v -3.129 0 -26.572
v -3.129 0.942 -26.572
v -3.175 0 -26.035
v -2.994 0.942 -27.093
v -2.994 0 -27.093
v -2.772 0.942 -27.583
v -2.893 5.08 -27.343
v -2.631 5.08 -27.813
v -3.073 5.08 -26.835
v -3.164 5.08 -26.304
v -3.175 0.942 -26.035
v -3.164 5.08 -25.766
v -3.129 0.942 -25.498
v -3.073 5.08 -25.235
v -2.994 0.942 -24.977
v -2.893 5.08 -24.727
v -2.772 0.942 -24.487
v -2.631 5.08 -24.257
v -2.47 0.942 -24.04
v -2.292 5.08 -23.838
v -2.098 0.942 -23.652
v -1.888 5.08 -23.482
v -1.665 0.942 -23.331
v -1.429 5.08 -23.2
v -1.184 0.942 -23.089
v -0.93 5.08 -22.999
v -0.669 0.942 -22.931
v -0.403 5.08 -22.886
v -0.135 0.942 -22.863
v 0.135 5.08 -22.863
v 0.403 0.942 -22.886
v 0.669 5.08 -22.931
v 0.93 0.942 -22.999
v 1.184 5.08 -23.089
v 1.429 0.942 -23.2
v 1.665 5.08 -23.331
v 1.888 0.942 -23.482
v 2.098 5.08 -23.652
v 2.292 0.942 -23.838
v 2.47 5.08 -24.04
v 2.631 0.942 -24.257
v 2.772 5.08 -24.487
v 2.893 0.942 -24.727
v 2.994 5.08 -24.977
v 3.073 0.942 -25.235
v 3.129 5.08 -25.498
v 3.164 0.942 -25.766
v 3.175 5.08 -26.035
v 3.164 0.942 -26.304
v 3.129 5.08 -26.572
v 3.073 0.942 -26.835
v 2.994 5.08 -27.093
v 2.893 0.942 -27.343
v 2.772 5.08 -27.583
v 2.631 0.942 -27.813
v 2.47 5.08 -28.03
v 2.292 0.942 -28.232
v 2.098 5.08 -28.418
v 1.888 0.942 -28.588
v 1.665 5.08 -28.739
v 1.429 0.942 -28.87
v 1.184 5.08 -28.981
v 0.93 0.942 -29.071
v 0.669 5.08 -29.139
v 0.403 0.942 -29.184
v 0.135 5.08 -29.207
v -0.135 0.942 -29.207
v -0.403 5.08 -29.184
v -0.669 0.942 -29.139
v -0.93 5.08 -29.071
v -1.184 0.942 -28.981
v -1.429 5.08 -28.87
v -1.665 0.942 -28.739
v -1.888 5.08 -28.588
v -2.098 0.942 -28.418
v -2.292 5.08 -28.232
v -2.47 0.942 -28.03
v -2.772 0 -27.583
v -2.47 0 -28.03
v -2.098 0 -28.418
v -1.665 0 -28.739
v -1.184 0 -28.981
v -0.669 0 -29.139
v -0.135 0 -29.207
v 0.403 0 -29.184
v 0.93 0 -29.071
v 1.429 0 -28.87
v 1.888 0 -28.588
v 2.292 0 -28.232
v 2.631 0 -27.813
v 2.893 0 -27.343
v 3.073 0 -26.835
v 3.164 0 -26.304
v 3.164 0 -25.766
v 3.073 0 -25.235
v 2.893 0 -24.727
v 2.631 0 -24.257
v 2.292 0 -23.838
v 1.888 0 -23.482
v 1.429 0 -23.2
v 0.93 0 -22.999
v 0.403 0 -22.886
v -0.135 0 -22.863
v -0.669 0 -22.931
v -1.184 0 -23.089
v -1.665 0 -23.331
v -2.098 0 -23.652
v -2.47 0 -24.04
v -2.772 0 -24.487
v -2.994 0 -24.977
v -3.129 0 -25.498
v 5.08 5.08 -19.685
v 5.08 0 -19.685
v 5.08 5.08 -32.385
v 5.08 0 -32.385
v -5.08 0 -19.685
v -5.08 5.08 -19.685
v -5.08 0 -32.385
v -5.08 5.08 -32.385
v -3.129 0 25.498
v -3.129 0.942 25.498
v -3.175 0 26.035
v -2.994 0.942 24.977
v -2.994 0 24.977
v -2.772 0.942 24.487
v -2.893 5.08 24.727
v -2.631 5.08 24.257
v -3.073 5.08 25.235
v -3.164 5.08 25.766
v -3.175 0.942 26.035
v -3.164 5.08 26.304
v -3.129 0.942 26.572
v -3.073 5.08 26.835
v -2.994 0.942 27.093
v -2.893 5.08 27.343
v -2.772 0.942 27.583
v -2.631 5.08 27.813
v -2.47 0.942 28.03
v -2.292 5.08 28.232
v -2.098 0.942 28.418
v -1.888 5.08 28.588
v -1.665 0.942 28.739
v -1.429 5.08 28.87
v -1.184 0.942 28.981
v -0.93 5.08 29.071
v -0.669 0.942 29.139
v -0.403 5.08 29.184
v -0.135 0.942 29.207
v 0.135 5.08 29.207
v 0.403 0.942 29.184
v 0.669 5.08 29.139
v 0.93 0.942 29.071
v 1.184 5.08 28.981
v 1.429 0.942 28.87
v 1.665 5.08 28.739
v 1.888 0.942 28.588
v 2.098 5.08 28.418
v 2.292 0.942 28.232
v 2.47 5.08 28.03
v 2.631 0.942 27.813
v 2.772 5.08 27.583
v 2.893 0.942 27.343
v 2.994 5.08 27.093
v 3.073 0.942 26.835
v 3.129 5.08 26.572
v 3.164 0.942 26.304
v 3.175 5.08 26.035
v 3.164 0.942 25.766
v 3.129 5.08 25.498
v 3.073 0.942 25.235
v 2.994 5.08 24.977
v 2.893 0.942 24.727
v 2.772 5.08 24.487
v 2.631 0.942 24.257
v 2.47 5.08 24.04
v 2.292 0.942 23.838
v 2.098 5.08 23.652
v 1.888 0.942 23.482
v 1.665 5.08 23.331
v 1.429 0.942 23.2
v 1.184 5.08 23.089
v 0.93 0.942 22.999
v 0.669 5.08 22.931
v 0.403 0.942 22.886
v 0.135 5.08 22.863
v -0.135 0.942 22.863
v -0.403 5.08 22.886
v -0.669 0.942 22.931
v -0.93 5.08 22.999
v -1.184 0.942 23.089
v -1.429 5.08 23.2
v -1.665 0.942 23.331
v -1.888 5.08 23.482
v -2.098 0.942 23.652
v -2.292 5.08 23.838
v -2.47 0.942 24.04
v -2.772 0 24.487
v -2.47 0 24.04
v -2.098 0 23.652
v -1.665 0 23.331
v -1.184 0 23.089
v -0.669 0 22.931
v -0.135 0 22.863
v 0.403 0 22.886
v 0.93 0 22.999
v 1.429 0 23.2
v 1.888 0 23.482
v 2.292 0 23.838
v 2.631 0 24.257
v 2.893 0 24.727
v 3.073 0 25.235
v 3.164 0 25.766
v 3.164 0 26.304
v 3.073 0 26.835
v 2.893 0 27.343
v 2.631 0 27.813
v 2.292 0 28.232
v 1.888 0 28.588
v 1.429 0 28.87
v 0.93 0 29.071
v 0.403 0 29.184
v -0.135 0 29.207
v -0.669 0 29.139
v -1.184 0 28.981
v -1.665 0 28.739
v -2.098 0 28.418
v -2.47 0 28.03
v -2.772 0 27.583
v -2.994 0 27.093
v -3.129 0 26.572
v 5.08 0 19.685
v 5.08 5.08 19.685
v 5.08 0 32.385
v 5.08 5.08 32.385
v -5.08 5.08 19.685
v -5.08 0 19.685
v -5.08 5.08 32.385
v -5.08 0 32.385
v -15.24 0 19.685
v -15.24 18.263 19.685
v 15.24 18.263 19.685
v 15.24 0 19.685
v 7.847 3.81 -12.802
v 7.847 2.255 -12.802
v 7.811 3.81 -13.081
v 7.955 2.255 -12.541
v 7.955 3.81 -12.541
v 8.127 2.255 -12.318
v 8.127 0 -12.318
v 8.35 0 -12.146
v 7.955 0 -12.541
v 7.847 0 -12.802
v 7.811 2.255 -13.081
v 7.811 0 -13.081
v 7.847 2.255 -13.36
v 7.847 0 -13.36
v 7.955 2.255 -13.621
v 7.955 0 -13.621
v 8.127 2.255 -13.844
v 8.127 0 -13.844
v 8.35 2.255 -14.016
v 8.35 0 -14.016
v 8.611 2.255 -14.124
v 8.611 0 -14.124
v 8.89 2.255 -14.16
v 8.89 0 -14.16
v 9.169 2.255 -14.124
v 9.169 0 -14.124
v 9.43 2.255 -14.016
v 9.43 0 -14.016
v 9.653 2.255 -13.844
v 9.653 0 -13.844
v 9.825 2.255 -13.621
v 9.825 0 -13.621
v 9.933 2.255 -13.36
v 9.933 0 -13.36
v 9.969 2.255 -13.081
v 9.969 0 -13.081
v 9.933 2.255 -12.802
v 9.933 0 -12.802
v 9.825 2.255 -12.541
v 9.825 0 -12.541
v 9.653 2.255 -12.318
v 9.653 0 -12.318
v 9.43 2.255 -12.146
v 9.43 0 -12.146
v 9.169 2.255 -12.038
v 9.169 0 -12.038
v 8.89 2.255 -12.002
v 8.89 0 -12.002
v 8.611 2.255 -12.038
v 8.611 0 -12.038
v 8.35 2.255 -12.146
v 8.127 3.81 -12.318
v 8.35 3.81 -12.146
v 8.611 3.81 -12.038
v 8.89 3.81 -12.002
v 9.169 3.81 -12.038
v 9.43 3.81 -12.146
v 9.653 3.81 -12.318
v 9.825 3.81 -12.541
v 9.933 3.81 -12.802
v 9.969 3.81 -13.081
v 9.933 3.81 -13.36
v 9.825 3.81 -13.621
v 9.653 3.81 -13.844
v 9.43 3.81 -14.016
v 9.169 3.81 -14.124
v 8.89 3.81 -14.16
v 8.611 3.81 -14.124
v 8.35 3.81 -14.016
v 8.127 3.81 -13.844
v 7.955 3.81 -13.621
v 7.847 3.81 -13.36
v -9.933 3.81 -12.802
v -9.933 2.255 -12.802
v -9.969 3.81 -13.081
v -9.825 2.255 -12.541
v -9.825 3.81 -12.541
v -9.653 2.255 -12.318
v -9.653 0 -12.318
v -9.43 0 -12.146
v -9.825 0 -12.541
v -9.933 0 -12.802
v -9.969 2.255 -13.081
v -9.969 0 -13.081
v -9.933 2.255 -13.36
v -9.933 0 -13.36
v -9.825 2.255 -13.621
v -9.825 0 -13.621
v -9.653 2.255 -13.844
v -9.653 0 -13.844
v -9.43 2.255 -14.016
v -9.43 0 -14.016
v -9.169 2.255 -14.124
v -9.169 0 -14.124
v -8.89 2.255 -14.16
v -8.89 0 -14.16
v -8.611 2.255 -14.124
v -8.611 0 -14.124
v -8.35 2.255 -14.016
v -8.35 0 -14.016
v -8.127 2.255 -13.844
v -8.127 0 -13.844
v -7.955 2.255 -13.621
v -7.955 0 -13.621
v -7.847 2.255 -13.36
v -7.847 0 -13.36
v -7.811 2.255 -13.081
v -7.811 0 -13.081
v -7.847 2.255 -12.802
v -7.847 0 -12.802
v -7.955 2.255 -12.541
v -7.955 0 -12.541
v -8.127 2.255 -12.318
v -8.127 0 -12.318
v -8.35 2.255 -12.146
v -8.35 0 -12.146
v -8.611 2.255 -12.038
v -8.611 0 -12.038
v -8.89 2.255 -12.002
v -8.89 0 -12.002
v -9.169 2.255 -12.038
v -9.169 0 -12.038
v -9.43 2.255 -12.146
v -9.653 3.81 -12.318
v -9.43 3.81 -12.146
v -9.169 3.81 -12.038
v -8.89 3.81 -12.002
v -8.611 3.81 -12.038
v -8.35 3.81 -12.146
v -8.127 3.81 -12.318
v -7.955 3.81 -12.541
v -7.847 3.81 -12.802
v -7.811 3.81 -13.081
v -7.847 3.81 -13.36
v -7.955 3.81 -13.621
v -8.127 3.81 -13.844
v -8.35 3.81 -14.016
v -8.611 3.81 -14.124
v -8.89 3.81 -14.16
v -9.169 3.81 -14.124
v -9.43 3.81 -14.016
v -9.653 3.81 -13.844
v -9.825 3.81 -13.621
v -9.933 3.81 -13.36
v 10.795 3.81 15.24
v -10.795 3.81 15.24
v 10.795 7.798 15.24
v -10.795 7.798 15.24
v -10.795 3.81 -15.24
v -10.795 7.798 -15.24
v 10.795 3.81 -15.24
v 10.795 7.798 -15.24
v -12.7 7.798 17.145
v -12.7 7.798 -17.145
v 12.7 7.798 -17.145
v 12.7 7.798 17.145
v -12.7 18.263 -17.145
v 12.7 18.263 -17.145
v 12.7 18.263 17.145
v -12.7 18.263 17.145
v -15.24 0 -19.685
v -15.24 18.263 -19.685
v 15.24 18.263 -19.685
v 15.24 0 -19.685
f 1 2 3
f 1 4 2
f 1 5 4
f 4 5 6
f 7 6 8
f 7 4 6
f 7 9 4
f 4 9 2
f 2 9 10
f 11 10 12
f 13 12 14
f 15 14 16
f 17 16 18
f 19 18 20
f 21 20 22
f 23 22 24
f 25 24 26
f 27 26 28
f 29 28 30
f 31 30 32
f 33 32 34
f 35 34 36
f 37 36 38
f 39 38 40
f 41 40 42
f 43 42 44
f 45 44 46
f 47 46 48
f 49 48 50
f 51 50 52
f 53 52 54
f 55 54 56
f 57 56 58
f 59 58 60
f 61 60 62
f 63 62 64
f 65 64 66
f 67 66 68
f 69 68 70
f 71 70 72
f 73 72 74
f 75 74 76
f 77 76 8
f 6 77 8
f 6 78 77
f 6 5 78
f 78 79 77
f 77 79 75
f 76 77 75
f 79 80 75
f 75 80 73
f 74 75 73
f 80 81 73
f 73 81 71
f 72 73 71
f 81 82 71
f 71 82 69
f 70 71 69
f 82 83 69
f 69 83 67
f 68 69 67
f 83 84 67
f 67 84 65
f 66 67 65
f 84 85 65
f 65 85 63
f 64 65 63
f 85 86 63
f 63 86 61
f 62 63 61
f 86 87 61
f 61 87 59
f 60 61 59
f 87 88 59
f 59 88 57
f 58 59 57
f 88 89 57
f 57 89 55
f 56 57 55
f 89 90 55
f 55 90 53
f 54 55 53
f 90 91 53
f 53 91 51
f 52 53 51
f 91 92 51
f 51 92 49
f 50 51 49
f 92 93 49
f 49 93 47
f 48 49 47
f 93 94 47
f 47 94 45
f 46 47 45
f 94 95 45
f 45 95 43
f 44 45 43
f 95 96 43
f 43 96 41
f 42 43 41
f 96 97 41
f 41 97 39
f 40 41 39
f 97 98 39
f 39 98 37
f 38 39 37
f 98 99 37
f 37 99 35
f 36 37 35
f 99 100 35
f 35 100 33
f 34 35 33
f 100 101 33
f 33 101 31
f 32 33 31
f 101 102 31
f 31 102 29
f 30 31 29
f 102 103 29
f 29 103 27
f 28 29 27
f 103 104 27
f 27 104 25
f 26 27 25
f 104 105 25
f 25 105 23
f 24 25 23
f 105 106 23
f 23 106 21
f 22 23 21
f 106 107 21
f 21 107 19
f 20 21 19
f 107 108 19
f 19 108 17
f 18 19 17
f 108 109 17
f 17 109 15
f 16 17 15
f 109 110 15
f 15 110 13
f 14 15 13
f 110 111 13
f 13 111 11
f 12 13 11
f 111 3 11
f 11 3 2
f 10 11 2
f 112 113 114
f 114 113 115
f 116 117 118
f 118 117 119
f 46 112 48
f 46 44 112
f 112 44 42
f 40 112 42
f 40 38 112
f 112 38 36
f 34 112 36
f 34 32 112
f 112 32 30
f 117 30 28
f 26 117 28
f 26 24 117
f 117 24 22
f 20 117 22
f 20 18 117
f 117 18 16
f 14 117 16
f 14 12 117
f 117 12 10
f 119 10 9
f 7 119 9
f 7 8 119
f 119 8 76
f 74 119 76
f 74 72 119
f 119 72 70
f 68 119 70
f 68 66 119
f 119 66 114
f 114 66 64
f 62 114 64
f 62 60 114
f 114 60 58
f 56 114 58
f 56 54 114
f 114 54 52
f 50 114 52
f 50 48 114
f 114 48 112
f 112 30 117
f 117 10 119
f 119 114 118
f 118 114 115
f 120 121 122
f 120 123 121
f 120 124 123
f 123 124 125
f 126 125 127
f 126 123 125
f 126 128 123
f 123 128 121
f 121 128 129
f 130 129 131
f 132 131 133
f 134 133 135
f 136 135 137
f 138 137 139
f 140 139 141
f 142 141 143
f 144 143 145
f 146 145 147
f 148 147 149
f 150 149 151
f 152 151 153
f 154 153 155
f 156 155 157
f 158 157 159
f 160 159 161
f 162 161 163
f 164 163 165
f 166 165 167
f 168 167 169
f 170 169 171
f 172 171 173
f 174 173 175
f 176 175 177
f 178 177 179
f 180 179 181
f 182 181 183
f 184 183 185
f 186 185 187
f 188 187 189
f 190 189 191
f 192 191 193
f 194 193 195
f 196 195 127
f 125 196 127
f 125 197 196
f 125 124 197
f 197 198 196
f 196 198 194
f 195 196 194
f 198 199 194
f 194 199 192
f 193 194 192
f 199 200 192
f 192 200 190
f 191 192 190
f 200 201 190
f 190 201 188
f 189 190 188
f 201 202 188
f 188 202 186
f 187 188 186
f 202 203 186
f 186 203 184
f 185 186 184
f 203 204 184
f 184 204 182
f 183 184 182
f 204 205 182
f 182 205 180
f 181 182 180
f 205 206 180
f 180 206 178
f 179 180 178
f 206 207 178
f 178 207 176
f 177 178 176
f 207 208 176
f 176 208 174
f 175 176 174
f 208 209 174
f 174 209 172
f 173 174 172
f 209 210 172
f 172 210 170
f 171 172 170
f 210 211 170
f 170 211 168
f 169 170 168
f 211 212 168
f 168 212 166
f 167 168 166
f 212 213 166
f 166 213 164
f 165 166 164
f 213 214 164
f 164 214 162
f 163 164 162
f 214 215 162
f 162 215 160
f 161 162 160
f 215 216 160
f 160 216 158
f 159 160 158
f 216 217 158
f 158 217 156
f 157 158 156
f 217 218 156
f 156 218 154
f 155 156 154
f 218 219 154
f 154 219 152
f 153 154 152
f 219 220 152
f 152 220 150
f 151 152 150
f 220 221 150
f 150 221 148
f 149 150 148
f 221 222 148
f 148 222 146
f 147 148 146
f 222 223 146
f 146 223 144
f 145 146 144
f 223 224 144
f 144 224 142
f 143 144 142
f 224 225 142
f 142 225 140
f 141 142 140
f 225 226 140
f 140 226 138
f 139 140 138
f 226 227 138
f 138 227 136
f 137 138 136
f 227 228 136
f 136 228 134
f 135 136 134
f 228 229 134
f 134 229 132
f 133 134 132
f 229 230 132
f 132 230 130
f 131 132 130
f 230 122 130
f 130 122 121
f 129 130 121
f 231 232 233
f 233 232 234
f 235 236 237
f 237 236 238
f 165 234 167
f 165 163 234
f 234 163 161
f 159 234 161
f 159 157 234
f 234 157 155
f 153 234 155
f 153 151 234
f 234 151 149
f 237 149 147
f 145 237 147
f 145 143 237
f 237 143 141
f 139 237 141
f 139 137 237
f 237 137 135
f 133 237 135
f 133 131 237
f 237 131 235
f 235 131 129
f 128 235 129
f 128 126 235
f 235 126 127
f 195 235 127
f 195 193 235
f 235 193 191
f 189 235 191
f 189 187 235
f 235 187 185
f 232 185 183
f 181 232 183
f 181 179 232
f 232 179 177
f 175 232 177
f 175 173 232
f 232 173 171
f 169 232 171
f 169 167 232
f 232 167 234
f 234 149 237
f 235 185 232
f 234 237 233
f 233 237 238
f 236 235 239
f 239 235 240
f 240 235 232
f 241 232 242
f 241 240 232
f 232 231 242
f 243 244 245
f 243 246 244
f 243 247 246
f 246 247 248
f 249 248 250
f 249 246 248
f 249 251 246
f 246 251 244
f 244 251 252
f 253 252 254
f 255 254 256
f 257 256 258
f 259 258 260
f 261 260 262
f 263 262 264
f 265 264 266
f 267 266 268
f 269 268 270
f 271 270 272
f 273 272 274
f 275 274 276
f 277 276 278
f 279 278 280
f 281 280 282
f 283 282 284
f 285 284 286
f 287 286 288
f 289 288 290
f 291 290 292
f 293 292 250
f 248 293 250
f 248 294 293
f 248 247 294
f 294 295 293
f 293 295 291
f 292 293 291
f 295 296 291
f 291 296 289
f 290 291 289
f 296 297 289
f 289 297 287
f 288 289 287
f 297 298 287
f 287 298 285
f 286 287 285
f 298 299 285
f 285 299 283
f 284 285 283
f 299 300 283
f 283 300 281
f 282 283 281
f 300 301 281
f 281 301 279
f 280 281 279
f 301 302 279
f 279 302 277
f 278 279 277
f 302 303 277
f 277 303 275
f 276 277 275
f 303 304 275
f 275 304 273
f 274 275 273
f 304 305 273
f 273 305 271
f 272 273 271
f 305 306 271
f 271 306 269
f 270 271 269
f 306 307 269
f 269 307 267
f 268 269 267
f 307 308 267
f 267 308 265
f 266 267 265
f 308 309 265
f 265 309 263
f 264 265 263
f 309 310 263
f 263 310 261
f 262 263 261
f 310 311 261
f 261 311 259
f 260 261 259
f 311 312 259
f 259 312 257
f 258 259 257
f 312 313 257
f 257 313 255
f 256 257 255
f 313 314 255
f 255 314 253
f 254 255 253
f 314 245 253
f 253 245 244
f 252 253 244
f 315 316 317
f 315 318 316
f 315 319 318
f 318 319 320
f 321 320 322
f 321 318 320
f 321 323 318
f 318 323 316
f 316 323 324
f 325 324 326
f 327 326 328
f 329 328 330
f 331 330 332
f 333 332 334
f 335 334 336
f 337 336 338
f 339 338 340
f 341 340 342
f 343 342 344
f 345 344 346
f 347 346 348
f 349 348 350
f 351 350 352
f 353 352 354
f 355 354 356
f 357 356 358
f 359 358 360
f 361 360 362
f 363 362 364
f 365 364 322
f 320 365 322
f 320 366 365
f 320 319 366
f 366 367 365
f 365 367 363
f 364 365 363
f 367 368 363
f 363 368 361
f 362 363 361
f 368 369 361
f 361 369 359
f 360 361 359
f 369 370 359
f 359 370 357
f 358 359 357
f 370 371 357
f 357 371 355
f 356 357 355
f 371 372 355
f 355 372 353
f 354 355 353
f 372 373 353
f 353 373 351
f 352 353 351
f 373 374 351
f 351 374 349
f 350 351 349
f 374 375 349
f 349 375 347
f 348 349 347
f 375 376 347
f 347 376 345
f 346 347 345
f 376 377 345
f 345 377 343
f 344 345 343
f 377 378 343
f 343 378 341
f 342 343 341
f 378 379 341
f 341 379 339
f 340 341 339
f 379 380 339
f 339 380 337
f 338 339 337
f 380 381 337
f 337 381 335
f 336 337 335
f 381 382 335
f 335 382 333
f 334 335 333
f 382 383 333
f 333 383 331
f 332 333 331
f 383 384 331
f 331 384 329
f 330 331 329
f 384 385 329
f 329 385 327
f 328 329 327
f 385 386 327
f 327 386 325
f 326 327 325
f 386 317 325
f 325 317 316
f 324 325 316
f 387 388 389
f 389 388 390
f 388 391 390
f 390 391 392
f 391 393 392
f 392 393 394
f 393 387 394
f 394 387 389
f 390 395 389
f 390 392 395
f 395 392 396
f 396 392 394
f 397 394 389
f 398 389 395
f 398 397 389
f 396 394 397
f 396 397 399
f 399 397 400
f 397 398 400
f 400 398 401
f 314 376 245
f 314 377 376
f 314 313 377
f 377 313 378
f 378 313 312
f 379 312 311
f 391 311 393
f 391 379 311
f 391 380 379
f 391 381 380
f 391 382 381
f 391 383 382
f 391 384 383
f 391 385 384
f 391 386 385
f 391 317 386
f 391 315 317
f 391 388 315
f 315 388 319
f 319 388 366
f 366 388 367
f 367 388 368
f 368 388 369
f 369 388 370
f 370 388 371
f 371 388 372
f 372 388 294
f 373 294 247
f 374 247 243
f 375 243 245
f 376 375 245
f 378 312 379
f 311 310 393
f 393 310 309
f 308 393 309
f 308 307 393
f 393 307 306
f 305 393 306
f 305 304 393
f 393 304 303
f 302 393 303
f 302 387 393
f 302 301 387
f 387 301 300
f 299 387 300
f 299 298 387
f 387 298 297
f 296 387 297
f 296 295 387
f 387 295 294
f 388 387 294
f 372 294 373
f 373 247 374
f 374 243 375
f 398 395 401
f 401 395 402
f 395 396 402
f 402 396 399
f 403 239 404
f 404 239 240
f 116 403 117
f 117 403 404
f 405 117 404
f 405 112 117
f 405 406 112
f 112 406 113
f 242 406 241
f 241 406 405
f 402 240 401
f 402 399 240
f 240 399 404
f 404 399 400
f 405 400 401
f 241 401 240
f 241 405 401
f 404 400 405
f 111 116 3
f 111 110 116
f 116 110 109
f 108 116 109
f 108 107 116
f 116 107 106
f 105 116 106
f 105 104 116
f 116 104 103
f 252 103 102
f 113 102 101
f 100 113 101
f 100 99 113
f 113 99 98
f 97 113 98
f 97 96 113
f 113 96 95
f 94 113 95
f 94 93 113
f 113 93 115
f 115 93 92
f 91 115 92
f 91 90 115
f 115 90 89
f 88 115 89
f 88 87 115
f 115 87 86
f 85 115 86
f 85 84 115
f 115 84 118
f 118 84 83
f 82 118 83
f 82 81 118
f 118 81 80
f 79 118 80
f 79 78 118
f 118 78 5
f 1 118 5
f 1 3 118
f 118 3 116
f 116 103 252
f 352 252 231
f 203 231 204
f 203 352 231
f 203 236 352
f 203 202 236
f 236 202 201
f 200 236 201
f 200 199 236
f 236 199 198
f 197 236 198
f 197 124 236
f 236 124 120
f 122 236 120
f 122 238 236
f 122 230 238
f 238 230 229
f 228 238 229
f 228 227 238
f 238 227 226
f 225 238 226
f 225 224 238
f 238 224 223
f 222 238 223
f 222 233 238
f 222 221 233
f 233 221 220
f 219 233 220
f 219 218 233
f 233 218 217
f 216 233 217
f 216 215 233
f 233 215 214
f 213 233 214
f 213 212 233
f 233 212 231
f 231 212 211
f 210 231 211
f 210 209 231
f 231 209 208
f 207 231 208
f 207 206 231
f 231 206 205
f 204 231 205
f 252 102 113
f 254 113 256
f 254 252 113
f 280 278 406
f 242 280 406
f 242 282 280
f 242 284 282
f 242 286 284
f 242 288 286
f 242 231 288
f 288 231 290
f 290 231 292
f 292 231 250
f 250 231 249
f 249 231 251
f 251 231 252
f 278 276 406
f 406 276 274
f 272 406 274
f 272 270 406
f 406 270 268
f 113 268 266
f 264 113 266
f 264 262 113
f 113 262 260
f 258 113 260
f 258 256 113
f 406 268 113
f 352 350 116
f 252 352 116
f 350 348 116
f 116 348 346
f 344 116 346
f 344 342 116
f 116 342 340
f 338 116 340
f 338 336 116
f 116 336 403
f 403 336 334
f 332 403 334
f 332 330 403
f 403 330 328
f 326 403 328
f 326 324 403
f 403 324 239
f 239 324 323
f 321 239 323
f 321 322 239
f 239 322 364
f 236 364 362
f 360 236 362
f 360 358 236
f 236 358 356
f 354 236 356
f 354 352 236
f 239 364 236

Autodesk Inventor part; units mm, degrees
ref_plane "XZ Plane" through (0, 0, 0) normal (0, 1, 0) x (-1, 0, 0)
sketch "Sketch3" plane through (0, 0, 0) normal (0, 1, 0) x (-1, 0, 0)
  line L0 (15.24, 19.685) -> (-15.24, 19.685)
  line L1 (-15.24, 19.685) -> (-15.24, -19.685)
  line L2 (-15.24, -19.685) -> (15.24, -19.685)
  line L3 (15.24, -19.685) -> (15.24, 19.685)
  line L4 (15.24, 19.685) -> (-15.24, -19.685) construction
  line L5 (-15.24, 19.685) -> (15.24, -19.685) construction
  line L6 (-12.7, 17.145) -> (-12.7, -17.145)
  line L7 (-12.7, -17.145) -> (12.7, -17.145)
  line L8 (12.7, -17.145) -> (12.7, 17.145)
  line L9 (12.7, 17.145) -> (-12.7, 17.145)
  line L10 (-12.7, 17.145) -> (12.7, -17.145) construction
  line L11 (-12.7, -17.145) -> (12.7, 17.145) construction
  point P0 (0, 0)
  dimension "d11" = 30.48
  dimension "d12" = 39.37
  dimension "d13" = 34.29
  dimension "d14" = 25.4
extrude "Extrusion4" add sketch "Sketch3" along normal blind 18.2626
sketch "Sketch4" plane through (0, 0, 0) normal (0, -1, 0) x (1, 0, 0)
  line L0 (12.7, 17.145) -> (-12.7, 17.145) projected
  line L1 (-12.7, -17.145) -> (12.7, -17.145) projected
  line L2 (12.7, 17.145) -> (-12.7, 17.145)
  line L3 (-12.7, 17.145) -> (-12.7, -17.145)
  line L4 (-12.7, -17.145) -> (12.7, -17.145)
  line L5 (12.7, -17.145) -> (12.7, 17.145)
  point P0 (0, 0)
extrude "Extrusion5" add sketch "Sketch4" against normal blind 3.81
sketch "Sketch5" plane through (0, 3.81, 0) normal (0, 1, 0) x (1, 0, 0)
  line L0 (10.795, -15.24) -> (10.795, 15.24)
  line L1 (10.795, 15.24) -> (-10.795, 15.24)
  line L2 (-10.795, 15.24) -> (-10.795, -15.24)
  line L3 (-10.795, -15.24) -> (10.795, -15.24)
  line L4 (10.795, -15.24) -> (-10.795, 15.24) construction
  line L5 (10.795, 15.24) -> (-10.795, -15.24) construction
  line L6 (12.7, -17.145) -> (-12.7, -17.145) projected
  line L7 (12.7, 17.145) -> (12.7, -17.145) projected
  line L8 (-12.7, 17.145) -> (12.7, 17.145) projected
  line L9 (12.7, -17.145) -> (-12.7, -17.145)
  line L10 (-12.7, -17.145) -> (-12.7, 17.145)
  line L11 (-12.7, 17.145) -> (12.7, 17.145)
  line L12 (12.7, 17.145) -> (12.7, -17.145)
  point P0 (0, 0)
  dimension "d21" = 1.905
  dimension "d22" = 1.905
extrude "Extrusion6" add sketch "Sketch5" along normal blind 3.9878
sketch "Sketch6" plane through (0, 0, 0) normal (0, -1, 0) x (1, 0, 0)
  line L0 (15.24, 19.685) -> (15.24, -19.685) construction
  line L1 (15.24, -13.081) -> (-15.24, -13.081) construction
  line L2 (-15.24, -19.685) -> (-15.24, 19.685) construction
  line L3 (15.24, -19.685) -> (-15.24, -19.685) construction
  point P0 (0, 0)
  point P1 (8.89, -13.081)
  point P2 (-8.89, -13.081)
  dimension "d25" = 6.604
  dimension "d26" = 6.35
  dimension "d27" = 6.35
hole "Hole1" at (8.89, 0, -13.081) at (-8.89, 0, -13.081) direction (0, 1, 0) diameter 2.159 end through all
sketch "Sketch8" plane through (-15.24, 0, 19.685) normal (0, 0, 1) x (1, 0, 0)
  line L0 (15.24, 0) -> (20.32, 0)
  line L1 (20.32, 0) -> (20.32, 5.08)
  line L2 (20.32, 5.08) -> (15.24, 5.08)
  line L3 (15.24, 5.08) -> (15.24, 0)
  line L4 (15.24, 0) -> (10.16, 0)
  line L5 (10.16, 0) -> (10.16, 5.08)
  line L6 (10.16, 5.08) -> (15.24, 5.08)
  dimension "d35" = 5.08
  dimension "d36" = 5.08
extrude "Extrusion7" add sketch "Sketch8" along normal blind 12.7
sketch "Sketch10" plane through (-5.08, 5.08, 19.685) normal (0, 1, 0) x (1, 0, 0)
  line L0 (-10.16, 0) -> (20.32, 0) projected
  line L1 (0, 0) -> (0, -12.7) projected
  point P0 (5.08, 19.685)
  point P1 (5.08, -6.35)
  dimension "d46" = 6.35
  dimension "d54" = 5.08
hole "Hole3" at (0, 5.08, 26.035) direction (0, -1, 0) diameter 6.35 end through all
mirror "Mirror1" about plane through (0, 0, 0) normal (0, 0, 1) of "Hole3", "Extrusion7"
equation "\"d11\" = caseWidth"
equation "\"d12\" = caseLength"
equation "\"d13\" = internalCaseLength"
equation "\"d14\" = internalCaseWidth"
equation "\"d17\" = caseHeight"
equation "\"d19\" = caseBaseThickness"
equation "\"d21\" = supportWidth"
equation "\"d22\" = supportWidth"
equation "\"d23\" = componentHeightAboveBoard"
equation "\"d35\" = tabHeight"
equation "\"d36\" = halfTabWidth"
equation "\"d37\" = tabLength"
equation "\"d46\" = halfTabLength"
equation "\"d54\" = halfTabWidth"
equation "\"boardWidth\" = 22.86"
equation "\"boardLength\" = 31.75"
equation "\"boardThickness\" = 1.7272"
equation "\"componentHeightAboveBoard\" = 3.9878"
equation "\"headerHeightAboveBard\" = 8.7376"
equation "\"holeDiam\" = 2.3368"
equation "\"centerLineForHoles\" = 2.794"
equation "\"holeDistanceFromEdge\" = 2.54"
equation "\"supportWidth\" = 1.905"
equation "\"caseWallWidth\" = 2.54"
equation "\"internalSpacingForComponent\" = 1.27"
equation "\"caseWidth\" = 2 * caseWallWidth + boardWidth + 2 * internalSpacingForComponent"
equation "\"caseLength\" = 2 * caseWallWidth + boardLength + 2 * internalSpacingForComponent"
equation "\"internalCaseWidth\" = boardWidth + 2 * internalSpacingForComponent"
equation "\"internalCaseLength\" = boardLength + 2 * internalSpacingForComponent"
equation "\"caseHeight\" = headerHeightAboveBard + boardThickness + componentHeightAboveBoard + caseBaseThickness"
equation "\"caseBaseThickness\" = 3.81"
equation "\"tabHeight\" = 5.08"
equation "\"tabWidth\" = 10.16"
equation "\"halfTabWidth\" = 0.5 * tabWidth"
equation "\"tabLength\" = 12.7"
equation "\"halfTabLength\" = 0.5 * tabLength"
properties part number "CaseForADXL_345" material "ABS Plastic"
